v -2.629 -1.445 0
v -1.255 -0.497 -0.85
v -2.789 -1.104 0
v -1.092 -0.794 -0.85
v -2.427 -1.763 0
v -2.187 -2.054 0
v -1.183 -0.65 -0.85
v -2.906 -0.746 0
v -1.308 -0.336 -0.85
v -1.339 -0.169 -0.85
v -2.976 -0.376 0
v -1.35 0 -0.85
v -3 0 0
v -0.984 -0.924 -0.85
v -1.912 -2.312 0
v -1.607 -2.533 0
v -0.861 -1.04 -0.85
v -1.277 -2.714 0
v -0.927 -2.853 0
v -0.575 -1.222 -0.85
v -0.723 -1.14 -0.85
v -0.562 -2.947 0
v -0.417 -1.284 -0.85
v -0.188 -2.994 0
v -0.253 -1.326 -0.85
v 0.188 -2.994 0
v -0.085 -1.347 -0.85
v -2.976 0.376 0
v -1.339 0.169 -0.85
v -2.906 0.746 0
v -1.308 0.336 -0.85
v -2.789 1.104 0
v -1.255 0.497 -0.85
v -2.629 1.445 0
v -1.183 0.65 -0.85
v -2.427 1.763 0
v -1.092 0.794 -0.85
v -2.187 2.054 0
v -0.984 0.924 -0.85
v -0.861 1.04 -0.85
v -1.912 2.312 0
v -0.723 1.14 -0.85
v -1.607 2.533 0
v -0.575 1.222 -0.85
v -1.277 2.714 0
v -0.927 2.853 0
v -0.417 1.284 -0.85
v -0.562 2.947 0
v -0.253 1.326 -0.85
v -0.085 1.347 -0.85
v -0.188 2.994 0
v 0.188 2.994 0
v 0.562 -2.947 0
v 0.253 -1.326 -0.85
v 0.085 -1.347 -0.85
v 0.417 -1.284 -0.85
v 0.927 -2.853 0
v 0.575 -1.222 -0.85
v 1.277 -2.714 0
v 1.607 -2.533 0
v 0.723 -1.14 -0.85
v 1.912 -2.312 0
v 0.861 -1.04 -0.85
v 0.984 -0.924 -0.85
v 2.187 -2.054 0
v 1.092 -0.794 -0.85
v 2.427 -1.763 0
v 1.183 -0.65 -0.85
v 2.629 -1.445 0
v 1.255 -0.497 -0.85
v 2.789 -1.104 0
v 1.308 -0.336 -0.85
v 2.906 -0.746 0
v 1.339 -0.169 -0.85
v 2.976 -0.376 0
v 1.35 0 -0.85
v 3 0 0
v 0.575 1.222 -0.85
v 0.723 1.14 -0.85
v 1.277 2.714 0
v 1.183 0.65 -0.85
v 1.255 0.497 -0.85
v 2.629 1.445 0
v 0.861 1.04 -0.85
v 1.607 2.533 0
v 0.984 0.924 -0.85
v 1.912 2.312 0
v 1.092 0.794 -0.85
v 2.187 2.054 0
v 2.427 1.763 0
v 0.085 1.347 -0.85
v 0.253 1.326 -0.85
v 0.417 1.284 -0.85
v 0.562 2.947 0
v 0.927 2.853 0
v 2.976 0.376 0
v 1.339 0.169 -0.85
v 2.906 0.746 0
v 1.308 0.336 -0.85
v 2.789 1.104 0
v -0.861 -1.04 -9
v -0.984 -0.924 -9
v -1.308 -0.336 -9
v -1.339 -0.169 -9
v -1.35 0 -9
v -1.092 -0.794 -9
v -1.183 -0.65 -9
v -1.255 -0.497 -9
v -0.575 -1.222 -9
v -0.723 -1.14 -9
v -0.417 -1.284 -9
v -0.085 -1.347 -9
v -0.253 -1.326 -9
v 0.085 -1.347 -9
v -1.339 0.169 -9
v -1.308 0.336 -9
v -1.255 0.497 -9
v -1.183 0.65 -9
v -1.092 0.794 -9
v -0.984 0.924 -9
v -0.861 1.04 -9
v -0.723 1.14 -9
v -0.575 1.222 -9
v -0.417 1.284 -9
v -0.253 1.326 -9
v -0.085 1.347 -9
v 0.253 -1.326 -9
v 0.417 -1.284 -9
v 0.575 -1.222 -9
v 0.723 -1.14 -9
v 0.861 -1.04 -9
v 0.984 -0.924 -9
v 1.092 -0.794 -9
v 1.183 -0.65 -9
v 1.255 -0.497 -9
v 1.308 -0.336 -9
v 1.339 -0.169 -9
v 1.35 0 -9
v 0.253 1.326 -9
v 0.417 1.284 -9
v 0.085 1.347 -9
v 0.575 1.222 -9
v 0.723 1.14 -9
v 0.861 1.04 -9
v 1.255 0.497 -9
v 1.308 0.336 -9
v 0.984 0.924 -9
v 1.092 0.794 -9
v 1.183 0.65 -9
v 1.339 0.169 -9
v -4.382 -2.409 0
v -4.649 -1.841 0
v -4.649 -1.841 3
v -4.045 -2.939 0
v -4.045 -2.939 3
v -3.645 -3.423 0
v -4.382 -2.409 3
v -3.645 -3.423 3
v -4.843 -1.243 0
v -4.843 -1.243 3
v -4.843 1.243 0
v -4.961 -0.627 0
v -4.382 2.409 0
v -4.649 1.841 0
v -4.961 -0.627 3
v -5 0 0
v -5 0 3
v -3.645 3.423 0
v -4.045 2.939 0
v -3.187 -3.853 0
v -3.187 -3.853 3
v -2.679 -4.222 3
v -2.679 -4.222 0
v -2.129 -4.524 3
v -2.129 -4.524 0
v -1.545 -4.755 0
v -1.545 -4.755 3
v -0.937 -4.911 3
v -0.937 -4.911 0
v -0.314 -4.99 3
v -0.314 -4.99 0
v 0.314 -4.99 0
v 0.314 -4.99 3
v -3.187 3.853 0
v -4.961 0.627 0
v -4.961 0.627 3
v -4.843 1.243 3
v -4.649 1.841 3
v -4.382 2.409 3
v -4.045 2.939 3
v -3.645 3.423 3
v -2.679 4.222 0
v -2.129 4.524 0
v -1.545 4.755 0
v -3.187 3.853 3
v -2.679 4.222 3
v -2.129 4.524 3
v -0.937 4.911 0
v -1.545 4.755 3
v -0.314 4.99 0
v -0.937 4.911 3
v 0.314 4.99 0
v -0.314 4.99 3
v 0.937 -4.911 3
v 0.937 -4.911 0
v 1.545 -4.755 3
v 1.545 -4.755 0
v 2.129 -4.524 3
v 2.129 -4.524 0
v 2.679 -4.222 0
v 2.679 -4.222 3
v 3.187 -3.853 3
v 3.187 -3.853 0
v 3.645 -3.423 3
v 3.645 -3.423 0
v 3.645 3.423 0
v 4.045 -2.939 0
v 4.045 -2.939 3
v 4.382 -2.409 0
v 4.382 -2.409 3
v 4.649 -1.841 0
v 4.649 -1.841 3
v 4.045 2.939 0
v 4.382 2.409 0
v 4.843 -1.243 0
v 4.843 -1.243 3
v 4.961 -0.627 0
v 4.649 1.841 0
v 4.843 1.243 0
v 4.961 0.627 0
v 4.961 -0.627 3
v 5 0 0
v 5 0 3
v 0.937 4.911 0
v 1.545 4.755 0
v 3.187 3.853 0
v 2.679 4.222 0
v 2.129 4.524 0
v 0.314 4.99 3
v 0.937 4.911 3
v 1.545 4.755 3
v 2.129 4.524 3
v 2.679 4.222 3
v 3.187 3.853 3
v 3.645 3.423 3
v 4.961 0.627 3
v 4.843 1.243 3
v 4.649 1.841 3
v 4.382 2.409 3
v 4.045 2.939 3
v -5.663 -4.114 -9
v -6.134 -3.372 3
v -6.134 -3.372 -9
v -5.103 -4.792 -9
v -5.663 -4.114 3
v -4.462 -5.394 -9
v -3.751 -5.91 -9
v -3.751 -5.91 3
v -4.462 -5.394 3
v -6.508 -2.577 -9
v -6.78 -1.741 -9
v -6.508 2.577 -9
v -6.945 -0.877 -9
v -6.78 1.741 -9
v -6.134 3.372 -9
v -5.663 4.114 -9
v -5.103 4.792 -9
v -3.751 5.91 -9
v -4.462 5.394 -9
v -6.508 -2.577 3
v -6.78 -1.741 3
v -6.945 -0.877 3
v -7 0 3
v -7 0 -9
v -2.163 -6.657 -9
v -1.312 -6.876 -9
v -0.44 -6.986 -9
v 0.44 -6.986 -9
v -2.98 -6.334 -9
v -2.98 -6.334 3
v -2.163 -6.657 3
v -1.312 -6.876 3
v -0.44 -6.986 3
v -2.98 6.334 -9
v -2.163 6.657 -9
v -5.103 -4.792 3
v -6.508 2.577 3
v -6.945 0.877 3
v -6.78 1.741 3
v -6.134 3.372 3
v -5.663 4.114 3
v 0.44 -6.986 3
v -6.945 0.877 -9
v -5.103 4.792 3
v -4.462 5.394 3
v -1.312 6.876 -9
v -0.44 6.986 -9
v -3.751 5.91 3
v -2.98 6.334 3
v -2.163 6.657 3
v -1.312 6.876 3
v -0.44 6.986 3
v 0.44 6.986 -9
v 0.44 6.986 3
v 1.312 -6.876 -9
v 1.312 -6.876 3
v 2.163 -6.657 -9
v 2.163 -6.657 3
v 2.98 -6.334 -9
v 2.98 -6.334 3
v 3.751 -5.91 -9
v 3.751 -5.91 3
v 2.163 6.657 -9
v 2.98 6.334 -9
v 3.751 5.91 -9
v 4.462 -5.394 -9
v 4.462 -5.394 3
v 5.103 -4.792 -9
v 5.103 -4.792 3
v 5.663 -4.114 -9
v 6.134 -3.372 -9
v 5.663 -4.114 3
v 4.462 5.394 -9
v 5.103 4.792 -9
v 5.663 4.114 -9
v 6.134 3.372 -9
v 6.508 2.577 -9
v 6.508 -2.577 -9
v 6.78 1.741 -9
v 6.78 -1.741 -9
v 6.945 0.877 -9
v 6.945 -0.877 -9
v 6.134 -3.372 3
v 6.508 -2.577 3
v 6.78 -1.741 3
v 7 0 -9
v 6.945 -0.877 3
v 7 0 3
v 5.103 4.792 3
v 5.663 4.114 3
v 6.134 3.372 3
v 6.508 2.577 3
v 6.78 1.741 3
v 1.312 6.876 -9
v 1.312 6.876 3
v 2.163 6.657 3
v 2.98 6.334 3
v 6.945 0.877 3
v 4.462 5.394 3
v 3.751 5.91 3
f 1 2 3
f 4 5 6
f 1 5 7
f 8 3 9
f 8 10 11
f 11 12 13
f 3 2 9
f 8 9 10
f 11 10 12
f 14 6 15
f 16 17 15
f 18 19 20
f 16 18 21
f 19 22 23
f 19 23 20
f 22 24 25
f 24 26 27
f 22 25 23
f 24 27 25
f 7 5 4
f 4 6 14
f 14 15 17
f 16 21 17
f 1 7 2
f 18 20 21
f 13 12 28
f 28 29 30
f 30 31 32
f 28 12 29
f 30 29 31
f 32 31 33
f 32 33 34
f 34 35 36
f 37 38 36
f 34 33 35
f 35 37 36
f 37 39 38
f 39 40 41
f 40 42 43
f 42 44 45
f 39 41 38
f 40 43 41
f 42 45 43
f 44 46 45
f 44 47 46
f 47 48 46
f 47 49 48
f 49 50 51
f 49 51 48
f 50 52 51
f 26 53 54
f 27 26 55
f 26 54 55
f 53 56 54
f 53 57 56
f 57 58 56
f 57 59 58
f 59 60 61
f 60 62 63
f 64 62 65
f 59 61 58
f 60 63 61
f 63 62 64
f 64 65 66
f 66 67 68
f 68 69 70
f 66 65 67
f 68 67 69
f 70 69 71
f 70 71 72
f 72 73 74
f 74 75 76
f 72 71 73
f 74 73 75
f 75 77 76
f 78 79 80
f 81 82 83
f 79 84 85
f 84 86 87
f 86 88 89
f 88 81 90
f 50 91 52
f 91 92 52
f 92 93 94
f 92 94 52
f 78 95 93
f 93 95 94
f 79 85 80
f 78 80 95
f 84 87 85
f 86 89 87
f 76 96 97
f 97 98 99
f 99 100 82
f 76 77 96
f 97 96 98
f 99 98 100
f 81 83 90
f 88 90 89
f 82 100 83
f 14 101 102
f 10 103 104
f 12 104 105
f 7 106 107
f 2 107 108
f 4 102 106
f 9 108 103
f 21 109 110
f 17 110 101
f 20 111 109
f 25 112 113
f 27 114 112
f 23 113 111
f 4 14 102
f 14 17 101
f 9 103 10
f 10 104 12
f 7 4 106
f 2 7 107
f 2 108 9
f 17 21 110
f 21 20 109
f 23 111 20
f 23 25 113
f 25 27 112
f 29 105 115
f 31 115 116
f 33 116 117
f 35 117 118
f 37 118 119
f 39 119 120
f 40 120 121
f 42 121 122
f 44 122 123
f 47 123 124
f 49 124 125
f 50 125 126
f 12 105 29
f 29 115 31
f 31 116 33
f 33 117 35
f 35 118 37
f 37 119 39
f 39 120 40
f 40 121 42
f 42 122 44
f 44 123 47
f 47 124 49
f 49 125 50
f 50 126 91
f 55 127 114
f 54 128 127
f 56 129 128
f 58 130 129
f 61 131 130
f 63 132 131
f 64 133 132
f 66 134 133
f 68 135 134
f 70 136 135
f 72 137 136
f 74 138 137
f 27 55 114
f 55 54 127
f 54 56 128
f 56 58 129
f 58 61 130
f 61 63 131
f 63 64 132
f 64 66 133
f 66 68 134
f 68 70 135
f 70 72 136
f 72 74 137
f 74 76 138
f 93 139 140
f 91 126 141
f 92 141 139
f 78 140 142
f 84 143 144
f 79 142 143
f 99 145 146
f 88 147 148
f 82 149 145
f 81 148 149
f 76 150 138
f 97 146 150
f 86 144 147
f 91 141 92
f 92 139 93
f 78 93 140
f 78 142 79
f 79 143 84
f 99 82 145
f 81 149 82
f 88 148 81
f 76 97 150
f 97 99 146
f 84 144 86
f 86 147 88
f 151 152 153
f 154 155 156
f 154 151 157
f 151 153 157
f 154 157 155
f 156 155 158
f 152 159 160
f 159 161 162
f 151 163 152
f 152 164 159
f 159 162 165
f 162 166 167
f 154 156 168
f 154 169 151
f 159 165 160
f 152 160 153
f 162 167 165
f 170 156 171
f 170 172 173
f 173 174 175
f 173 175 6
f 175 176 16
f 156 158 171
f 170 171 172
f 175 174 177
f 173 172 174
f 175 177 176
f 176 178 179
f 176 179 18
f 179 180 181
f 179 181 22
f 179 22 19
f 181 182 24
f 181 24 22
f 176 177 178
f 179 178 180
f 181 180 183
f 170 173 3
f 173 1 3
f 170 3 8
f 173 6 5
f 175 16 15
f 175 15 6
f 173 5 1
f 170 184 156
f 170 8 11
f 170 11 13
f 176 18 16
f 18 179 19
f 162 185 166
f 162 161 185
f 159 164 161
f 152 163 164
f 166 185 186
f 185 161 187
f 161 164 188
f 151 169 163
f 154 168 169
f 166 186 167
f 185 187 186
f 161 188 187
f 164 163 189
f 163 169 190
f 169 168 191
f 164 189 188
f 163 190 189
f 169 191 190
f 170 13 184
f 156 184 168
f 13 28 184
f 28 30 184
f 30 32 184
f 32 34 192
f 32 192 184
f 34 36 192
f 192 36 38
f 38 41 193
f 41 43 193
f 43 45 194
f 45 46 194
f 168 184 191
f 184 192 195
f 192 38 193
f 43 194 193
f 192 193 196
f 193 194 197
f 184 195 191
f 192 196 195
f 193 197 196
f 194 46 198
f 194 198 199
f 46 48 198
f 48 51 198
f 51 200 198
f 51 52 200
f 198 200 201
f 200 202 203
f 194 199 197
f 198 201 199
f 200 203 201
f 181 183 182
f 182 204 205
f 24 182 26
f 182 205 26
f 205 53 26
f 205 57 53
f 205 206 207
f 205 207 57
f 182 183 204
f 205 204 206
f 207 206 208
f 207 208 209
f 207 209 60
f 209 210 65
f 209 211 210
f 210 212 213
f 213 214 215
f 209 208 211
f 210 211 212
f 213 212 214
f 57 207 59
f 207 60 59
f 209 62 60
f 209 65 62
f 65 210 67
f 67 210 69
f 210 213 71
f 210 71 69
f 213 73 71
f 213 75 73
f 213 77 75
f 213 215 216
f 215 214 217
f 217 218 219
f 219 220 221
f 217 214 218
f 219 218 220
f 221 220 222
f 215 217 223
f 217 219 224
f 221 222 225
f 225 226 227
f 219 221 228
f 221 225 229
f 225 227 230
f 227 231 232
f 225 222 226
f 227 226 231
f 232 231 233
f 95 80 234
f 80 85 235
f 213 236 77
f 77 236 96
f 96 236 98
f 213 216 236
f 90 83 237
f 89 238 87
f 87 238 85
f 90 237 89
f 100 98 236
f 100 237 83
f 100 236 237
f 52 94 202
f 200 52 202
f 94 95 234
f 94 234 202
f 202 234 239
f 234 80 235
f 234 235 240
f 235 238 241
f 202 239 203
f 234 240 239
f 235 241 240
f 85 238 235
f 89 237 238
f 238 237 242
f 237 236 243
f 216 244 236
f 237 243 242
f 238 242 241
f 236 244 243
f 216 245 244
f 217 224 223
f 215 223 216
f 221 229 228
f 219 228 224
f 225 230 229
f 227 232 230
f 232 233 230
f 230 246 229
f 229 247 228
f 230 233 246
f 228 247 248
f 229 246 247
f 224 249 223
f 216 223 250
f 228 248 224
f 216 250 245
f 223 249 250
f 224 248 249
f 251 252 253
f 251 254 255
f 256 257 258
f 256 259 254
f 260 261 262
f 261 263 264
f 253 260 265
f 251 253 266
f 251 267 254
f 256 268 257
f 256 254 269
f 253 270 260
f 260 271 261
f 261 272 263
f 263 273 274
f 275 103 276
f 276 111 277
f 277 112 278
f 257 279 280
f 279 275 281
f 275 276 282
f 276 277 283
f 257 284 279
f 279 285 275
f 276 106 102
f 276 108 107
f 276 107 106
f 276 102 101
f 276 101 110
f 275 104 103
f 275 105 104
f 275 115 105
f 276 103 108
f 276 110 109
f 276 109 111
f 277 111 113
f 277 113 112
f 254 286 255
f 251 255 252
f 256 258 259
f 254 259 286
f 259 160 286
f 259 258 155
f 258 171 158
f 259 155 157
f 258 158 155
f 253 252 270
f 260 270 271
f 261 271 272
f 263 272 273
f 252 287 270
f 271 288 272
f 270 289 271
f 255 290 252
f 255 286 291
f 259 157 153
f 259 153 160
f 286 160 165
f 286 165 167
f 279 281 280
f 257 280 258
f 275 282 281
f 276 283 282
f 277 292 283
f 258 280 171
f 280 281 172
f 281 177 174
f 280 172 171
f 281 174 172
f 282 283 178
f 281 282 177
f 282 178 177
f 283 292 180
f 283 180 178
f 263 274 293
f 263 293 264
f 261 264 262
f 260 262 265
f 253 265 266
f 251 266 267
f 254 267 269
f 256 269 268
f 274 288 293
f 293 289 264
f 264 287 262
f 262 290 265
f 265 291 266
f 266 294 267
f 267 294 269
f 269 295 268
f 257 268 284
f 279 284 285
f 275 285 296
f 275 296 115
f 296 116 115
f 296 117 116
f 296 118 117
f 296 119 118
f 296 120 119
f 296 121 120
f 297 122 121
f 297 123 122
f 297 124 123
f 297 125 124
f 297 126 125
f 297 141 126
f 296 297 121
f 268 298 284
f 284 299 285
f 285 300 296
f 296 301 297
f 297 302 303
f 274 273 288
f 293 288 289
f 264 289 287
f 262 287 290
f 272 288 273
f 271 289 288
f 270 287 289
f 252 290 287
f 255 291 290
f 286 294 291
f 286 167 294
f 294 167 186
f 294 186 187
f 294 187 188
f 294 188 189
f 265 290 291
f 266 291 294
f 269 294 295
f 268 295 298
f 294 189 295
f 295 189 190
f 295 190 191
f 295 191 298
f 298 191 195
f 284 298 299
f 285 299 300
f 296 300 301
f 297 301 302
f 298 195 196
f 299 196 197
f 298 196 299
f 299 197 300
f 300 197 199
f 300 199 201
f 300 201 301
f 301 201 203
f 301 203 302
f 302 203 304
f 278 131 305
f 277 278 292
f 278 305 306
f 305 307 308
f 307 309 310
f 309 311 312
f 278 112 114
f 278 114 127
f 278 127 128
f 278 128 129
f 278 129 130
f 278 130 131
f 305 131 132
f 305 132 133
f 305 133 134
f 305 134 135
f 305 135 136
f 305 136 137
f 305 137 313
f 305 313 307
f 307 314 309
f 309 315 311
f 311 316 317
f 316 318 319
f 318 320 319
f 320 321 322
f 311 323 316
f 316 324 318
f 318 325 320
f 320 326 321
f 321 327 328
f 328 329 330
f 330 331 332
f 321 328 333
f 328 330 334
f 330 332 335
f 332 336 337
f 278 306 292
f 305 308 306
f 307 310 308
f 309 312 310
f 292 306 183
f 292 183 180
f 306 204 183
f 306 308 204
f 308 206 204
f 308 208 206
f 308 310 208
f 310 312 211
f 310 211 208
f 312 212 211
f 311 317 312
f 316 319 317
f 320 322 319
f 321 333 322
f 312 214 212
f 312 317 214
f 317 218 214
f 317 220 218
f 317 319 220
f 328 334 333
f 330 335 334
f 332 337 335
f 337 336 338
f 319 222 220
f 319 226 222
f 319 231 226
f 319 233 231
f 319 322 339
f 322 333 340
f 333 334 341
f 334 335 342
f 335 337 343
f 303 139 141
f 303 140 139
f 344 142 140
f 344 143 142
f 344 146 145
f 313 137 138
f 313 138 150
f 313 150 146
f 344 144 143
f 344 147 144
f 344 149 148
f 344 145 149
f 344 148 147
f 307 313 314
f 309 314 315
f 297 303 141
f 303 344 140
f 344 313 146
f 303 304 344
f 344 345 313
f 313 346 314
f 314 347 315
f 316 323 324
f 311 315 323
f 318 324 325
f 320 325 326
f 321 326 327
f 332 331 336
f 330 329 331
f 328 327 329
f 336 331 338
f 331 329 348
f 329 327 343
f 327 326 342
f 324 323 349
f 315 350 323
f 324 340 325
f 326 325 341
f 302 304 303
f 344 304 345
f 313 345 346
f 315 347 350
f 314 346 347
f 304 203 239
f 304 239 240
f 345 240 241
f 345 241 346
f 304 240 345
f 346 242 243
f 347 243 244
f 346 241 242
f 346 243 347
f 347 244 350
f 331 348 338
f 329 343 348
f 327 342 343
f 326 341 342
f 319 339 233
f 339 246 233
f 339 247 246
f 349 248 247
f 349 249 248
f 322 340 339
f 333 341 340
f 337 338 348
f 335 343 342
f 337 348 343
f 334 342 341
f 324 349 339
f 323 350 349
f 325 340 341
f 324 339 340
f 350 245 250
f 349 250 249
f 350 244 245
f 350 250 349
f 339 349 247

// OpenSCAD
$fn = 50;


difference() {
	union() {
		translate(v = [0, 0, -9.0000000000]) {
			cylinder(h = 12, r = 7.0000000000);
		}
	}
	union() {
		translate(v = [0, 0, 0]) {
			rotate(a = [0, 0, 0]) {
				difference() {
					union() {
						translate(v = [0, 0, -12.0000000000]) {
							cylinder(h = 12, r = 1.0000000000);
						}
						translate(v = [0, 0, -0.8500000000]) {
							cylinder(h = 0.8500000000, r1 = 1.3500000000, r2 = 3.0000000000);
						}
						translate(v = [0, 0, -12.0000000000]) {
							cylinder(h = 12, r = 1.3500000000);
						}
						translate(v = [0, 0, -12.0000000000]) {
							cylinder(h = 12, r = 1.0000000000);
						}
					}
					union();
				}
			}
		}
		#cylinder(h = 3, r = 5.0000000000);
	}
}
